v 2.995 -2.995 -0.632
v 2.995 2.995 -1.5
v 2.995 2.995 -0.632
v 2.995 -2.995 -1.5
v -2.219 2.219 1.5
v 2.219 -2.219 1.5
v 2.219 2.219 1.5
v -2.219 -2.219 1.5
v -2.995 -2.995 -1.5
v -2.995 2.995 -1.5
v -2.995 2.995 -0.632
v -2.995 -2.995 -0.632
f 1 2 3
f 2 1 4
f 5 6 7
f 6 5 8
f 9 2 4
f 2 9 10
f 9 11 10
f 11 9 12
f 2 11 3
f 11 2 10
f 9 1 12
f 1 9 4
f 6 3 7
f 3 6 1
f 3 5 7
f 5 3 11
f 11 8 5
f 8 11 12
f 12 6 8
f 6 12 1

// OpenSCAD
// file: lib.scad
function x(v) = v[0];
function y(v) = v[1];
function z(v) = v[2];
function add(v1,v2) = [ for (i = [ 0 : len(v1)-1 ]) v1[i] + v2[i] ];
function xv(d) = [d,0,0];
function yv(d) = [0,d,0];
function zv(d) = [0,0,d];

module box(v) { cube(size=v, center=true); }
module cyl(r1,r2,h) { cylinder(r1=r1, r2=r2, h=h, center=true); }

function grow(n,v) = [x(v)+n*2, y(v)+n*2, z(v)+n*2];

module rbox(v, radius=1) {
	cx = x(v)/2-radius;
	cy = y(v)/2-radius;
	cz = z(v)/2-radius;

	hull() {
		translate([cx,cy,cz]) sphere(r=radius);
		translate([cx,cy,-cz]) sphere(r=radius);
		translate([cx,-cy,cz]) sphere(r=radius);
		translate([cx,-cy,-cz]) sphere(r=radius);
		translate([-cx,cy,cz]) sphere(r=radius);
		translate([-cx,cy,-cz]) sphere(r=radius);
		translate([-cx,-cy,cz]) sphere(r=radius);
		translate([-cx,-cy,-cz]) sphere(r=radius);
	}
}

module fillet(r=1) {
  minkowski() {
    difference() {
      children();
      minkowski() {
        difference() {
          minkowski() {
            children();
            sphere(r=r);
          }
          children();
        }
        sphere(r=r);
      }
    }
    sphere(r=r);
  }
}
// main file
use <lib.scad>

bounds = [5.99, 5.99, 3];

difference() {
	box(bounds);
	rotate([0,0,000]) translate([bounds.x/1.57,0,bounds.z/2]) rotate([0,70,0]) box(bounds);
	rotate([0,0,090]) translate([bounds.x/1.57,0,bounds.z/2]) rotate([0,70,0]) box(bounds);
	rotate([0,0,180]) translate([bounds.x/1.57,0,bounds.z/2]) rotate([0,70,0]) box(bounds);
	rotate([0,0,270]) translate([bounds.x/1.57,0,bounds.z/2]) rotate([0,70,0]) box(bounds);
}
